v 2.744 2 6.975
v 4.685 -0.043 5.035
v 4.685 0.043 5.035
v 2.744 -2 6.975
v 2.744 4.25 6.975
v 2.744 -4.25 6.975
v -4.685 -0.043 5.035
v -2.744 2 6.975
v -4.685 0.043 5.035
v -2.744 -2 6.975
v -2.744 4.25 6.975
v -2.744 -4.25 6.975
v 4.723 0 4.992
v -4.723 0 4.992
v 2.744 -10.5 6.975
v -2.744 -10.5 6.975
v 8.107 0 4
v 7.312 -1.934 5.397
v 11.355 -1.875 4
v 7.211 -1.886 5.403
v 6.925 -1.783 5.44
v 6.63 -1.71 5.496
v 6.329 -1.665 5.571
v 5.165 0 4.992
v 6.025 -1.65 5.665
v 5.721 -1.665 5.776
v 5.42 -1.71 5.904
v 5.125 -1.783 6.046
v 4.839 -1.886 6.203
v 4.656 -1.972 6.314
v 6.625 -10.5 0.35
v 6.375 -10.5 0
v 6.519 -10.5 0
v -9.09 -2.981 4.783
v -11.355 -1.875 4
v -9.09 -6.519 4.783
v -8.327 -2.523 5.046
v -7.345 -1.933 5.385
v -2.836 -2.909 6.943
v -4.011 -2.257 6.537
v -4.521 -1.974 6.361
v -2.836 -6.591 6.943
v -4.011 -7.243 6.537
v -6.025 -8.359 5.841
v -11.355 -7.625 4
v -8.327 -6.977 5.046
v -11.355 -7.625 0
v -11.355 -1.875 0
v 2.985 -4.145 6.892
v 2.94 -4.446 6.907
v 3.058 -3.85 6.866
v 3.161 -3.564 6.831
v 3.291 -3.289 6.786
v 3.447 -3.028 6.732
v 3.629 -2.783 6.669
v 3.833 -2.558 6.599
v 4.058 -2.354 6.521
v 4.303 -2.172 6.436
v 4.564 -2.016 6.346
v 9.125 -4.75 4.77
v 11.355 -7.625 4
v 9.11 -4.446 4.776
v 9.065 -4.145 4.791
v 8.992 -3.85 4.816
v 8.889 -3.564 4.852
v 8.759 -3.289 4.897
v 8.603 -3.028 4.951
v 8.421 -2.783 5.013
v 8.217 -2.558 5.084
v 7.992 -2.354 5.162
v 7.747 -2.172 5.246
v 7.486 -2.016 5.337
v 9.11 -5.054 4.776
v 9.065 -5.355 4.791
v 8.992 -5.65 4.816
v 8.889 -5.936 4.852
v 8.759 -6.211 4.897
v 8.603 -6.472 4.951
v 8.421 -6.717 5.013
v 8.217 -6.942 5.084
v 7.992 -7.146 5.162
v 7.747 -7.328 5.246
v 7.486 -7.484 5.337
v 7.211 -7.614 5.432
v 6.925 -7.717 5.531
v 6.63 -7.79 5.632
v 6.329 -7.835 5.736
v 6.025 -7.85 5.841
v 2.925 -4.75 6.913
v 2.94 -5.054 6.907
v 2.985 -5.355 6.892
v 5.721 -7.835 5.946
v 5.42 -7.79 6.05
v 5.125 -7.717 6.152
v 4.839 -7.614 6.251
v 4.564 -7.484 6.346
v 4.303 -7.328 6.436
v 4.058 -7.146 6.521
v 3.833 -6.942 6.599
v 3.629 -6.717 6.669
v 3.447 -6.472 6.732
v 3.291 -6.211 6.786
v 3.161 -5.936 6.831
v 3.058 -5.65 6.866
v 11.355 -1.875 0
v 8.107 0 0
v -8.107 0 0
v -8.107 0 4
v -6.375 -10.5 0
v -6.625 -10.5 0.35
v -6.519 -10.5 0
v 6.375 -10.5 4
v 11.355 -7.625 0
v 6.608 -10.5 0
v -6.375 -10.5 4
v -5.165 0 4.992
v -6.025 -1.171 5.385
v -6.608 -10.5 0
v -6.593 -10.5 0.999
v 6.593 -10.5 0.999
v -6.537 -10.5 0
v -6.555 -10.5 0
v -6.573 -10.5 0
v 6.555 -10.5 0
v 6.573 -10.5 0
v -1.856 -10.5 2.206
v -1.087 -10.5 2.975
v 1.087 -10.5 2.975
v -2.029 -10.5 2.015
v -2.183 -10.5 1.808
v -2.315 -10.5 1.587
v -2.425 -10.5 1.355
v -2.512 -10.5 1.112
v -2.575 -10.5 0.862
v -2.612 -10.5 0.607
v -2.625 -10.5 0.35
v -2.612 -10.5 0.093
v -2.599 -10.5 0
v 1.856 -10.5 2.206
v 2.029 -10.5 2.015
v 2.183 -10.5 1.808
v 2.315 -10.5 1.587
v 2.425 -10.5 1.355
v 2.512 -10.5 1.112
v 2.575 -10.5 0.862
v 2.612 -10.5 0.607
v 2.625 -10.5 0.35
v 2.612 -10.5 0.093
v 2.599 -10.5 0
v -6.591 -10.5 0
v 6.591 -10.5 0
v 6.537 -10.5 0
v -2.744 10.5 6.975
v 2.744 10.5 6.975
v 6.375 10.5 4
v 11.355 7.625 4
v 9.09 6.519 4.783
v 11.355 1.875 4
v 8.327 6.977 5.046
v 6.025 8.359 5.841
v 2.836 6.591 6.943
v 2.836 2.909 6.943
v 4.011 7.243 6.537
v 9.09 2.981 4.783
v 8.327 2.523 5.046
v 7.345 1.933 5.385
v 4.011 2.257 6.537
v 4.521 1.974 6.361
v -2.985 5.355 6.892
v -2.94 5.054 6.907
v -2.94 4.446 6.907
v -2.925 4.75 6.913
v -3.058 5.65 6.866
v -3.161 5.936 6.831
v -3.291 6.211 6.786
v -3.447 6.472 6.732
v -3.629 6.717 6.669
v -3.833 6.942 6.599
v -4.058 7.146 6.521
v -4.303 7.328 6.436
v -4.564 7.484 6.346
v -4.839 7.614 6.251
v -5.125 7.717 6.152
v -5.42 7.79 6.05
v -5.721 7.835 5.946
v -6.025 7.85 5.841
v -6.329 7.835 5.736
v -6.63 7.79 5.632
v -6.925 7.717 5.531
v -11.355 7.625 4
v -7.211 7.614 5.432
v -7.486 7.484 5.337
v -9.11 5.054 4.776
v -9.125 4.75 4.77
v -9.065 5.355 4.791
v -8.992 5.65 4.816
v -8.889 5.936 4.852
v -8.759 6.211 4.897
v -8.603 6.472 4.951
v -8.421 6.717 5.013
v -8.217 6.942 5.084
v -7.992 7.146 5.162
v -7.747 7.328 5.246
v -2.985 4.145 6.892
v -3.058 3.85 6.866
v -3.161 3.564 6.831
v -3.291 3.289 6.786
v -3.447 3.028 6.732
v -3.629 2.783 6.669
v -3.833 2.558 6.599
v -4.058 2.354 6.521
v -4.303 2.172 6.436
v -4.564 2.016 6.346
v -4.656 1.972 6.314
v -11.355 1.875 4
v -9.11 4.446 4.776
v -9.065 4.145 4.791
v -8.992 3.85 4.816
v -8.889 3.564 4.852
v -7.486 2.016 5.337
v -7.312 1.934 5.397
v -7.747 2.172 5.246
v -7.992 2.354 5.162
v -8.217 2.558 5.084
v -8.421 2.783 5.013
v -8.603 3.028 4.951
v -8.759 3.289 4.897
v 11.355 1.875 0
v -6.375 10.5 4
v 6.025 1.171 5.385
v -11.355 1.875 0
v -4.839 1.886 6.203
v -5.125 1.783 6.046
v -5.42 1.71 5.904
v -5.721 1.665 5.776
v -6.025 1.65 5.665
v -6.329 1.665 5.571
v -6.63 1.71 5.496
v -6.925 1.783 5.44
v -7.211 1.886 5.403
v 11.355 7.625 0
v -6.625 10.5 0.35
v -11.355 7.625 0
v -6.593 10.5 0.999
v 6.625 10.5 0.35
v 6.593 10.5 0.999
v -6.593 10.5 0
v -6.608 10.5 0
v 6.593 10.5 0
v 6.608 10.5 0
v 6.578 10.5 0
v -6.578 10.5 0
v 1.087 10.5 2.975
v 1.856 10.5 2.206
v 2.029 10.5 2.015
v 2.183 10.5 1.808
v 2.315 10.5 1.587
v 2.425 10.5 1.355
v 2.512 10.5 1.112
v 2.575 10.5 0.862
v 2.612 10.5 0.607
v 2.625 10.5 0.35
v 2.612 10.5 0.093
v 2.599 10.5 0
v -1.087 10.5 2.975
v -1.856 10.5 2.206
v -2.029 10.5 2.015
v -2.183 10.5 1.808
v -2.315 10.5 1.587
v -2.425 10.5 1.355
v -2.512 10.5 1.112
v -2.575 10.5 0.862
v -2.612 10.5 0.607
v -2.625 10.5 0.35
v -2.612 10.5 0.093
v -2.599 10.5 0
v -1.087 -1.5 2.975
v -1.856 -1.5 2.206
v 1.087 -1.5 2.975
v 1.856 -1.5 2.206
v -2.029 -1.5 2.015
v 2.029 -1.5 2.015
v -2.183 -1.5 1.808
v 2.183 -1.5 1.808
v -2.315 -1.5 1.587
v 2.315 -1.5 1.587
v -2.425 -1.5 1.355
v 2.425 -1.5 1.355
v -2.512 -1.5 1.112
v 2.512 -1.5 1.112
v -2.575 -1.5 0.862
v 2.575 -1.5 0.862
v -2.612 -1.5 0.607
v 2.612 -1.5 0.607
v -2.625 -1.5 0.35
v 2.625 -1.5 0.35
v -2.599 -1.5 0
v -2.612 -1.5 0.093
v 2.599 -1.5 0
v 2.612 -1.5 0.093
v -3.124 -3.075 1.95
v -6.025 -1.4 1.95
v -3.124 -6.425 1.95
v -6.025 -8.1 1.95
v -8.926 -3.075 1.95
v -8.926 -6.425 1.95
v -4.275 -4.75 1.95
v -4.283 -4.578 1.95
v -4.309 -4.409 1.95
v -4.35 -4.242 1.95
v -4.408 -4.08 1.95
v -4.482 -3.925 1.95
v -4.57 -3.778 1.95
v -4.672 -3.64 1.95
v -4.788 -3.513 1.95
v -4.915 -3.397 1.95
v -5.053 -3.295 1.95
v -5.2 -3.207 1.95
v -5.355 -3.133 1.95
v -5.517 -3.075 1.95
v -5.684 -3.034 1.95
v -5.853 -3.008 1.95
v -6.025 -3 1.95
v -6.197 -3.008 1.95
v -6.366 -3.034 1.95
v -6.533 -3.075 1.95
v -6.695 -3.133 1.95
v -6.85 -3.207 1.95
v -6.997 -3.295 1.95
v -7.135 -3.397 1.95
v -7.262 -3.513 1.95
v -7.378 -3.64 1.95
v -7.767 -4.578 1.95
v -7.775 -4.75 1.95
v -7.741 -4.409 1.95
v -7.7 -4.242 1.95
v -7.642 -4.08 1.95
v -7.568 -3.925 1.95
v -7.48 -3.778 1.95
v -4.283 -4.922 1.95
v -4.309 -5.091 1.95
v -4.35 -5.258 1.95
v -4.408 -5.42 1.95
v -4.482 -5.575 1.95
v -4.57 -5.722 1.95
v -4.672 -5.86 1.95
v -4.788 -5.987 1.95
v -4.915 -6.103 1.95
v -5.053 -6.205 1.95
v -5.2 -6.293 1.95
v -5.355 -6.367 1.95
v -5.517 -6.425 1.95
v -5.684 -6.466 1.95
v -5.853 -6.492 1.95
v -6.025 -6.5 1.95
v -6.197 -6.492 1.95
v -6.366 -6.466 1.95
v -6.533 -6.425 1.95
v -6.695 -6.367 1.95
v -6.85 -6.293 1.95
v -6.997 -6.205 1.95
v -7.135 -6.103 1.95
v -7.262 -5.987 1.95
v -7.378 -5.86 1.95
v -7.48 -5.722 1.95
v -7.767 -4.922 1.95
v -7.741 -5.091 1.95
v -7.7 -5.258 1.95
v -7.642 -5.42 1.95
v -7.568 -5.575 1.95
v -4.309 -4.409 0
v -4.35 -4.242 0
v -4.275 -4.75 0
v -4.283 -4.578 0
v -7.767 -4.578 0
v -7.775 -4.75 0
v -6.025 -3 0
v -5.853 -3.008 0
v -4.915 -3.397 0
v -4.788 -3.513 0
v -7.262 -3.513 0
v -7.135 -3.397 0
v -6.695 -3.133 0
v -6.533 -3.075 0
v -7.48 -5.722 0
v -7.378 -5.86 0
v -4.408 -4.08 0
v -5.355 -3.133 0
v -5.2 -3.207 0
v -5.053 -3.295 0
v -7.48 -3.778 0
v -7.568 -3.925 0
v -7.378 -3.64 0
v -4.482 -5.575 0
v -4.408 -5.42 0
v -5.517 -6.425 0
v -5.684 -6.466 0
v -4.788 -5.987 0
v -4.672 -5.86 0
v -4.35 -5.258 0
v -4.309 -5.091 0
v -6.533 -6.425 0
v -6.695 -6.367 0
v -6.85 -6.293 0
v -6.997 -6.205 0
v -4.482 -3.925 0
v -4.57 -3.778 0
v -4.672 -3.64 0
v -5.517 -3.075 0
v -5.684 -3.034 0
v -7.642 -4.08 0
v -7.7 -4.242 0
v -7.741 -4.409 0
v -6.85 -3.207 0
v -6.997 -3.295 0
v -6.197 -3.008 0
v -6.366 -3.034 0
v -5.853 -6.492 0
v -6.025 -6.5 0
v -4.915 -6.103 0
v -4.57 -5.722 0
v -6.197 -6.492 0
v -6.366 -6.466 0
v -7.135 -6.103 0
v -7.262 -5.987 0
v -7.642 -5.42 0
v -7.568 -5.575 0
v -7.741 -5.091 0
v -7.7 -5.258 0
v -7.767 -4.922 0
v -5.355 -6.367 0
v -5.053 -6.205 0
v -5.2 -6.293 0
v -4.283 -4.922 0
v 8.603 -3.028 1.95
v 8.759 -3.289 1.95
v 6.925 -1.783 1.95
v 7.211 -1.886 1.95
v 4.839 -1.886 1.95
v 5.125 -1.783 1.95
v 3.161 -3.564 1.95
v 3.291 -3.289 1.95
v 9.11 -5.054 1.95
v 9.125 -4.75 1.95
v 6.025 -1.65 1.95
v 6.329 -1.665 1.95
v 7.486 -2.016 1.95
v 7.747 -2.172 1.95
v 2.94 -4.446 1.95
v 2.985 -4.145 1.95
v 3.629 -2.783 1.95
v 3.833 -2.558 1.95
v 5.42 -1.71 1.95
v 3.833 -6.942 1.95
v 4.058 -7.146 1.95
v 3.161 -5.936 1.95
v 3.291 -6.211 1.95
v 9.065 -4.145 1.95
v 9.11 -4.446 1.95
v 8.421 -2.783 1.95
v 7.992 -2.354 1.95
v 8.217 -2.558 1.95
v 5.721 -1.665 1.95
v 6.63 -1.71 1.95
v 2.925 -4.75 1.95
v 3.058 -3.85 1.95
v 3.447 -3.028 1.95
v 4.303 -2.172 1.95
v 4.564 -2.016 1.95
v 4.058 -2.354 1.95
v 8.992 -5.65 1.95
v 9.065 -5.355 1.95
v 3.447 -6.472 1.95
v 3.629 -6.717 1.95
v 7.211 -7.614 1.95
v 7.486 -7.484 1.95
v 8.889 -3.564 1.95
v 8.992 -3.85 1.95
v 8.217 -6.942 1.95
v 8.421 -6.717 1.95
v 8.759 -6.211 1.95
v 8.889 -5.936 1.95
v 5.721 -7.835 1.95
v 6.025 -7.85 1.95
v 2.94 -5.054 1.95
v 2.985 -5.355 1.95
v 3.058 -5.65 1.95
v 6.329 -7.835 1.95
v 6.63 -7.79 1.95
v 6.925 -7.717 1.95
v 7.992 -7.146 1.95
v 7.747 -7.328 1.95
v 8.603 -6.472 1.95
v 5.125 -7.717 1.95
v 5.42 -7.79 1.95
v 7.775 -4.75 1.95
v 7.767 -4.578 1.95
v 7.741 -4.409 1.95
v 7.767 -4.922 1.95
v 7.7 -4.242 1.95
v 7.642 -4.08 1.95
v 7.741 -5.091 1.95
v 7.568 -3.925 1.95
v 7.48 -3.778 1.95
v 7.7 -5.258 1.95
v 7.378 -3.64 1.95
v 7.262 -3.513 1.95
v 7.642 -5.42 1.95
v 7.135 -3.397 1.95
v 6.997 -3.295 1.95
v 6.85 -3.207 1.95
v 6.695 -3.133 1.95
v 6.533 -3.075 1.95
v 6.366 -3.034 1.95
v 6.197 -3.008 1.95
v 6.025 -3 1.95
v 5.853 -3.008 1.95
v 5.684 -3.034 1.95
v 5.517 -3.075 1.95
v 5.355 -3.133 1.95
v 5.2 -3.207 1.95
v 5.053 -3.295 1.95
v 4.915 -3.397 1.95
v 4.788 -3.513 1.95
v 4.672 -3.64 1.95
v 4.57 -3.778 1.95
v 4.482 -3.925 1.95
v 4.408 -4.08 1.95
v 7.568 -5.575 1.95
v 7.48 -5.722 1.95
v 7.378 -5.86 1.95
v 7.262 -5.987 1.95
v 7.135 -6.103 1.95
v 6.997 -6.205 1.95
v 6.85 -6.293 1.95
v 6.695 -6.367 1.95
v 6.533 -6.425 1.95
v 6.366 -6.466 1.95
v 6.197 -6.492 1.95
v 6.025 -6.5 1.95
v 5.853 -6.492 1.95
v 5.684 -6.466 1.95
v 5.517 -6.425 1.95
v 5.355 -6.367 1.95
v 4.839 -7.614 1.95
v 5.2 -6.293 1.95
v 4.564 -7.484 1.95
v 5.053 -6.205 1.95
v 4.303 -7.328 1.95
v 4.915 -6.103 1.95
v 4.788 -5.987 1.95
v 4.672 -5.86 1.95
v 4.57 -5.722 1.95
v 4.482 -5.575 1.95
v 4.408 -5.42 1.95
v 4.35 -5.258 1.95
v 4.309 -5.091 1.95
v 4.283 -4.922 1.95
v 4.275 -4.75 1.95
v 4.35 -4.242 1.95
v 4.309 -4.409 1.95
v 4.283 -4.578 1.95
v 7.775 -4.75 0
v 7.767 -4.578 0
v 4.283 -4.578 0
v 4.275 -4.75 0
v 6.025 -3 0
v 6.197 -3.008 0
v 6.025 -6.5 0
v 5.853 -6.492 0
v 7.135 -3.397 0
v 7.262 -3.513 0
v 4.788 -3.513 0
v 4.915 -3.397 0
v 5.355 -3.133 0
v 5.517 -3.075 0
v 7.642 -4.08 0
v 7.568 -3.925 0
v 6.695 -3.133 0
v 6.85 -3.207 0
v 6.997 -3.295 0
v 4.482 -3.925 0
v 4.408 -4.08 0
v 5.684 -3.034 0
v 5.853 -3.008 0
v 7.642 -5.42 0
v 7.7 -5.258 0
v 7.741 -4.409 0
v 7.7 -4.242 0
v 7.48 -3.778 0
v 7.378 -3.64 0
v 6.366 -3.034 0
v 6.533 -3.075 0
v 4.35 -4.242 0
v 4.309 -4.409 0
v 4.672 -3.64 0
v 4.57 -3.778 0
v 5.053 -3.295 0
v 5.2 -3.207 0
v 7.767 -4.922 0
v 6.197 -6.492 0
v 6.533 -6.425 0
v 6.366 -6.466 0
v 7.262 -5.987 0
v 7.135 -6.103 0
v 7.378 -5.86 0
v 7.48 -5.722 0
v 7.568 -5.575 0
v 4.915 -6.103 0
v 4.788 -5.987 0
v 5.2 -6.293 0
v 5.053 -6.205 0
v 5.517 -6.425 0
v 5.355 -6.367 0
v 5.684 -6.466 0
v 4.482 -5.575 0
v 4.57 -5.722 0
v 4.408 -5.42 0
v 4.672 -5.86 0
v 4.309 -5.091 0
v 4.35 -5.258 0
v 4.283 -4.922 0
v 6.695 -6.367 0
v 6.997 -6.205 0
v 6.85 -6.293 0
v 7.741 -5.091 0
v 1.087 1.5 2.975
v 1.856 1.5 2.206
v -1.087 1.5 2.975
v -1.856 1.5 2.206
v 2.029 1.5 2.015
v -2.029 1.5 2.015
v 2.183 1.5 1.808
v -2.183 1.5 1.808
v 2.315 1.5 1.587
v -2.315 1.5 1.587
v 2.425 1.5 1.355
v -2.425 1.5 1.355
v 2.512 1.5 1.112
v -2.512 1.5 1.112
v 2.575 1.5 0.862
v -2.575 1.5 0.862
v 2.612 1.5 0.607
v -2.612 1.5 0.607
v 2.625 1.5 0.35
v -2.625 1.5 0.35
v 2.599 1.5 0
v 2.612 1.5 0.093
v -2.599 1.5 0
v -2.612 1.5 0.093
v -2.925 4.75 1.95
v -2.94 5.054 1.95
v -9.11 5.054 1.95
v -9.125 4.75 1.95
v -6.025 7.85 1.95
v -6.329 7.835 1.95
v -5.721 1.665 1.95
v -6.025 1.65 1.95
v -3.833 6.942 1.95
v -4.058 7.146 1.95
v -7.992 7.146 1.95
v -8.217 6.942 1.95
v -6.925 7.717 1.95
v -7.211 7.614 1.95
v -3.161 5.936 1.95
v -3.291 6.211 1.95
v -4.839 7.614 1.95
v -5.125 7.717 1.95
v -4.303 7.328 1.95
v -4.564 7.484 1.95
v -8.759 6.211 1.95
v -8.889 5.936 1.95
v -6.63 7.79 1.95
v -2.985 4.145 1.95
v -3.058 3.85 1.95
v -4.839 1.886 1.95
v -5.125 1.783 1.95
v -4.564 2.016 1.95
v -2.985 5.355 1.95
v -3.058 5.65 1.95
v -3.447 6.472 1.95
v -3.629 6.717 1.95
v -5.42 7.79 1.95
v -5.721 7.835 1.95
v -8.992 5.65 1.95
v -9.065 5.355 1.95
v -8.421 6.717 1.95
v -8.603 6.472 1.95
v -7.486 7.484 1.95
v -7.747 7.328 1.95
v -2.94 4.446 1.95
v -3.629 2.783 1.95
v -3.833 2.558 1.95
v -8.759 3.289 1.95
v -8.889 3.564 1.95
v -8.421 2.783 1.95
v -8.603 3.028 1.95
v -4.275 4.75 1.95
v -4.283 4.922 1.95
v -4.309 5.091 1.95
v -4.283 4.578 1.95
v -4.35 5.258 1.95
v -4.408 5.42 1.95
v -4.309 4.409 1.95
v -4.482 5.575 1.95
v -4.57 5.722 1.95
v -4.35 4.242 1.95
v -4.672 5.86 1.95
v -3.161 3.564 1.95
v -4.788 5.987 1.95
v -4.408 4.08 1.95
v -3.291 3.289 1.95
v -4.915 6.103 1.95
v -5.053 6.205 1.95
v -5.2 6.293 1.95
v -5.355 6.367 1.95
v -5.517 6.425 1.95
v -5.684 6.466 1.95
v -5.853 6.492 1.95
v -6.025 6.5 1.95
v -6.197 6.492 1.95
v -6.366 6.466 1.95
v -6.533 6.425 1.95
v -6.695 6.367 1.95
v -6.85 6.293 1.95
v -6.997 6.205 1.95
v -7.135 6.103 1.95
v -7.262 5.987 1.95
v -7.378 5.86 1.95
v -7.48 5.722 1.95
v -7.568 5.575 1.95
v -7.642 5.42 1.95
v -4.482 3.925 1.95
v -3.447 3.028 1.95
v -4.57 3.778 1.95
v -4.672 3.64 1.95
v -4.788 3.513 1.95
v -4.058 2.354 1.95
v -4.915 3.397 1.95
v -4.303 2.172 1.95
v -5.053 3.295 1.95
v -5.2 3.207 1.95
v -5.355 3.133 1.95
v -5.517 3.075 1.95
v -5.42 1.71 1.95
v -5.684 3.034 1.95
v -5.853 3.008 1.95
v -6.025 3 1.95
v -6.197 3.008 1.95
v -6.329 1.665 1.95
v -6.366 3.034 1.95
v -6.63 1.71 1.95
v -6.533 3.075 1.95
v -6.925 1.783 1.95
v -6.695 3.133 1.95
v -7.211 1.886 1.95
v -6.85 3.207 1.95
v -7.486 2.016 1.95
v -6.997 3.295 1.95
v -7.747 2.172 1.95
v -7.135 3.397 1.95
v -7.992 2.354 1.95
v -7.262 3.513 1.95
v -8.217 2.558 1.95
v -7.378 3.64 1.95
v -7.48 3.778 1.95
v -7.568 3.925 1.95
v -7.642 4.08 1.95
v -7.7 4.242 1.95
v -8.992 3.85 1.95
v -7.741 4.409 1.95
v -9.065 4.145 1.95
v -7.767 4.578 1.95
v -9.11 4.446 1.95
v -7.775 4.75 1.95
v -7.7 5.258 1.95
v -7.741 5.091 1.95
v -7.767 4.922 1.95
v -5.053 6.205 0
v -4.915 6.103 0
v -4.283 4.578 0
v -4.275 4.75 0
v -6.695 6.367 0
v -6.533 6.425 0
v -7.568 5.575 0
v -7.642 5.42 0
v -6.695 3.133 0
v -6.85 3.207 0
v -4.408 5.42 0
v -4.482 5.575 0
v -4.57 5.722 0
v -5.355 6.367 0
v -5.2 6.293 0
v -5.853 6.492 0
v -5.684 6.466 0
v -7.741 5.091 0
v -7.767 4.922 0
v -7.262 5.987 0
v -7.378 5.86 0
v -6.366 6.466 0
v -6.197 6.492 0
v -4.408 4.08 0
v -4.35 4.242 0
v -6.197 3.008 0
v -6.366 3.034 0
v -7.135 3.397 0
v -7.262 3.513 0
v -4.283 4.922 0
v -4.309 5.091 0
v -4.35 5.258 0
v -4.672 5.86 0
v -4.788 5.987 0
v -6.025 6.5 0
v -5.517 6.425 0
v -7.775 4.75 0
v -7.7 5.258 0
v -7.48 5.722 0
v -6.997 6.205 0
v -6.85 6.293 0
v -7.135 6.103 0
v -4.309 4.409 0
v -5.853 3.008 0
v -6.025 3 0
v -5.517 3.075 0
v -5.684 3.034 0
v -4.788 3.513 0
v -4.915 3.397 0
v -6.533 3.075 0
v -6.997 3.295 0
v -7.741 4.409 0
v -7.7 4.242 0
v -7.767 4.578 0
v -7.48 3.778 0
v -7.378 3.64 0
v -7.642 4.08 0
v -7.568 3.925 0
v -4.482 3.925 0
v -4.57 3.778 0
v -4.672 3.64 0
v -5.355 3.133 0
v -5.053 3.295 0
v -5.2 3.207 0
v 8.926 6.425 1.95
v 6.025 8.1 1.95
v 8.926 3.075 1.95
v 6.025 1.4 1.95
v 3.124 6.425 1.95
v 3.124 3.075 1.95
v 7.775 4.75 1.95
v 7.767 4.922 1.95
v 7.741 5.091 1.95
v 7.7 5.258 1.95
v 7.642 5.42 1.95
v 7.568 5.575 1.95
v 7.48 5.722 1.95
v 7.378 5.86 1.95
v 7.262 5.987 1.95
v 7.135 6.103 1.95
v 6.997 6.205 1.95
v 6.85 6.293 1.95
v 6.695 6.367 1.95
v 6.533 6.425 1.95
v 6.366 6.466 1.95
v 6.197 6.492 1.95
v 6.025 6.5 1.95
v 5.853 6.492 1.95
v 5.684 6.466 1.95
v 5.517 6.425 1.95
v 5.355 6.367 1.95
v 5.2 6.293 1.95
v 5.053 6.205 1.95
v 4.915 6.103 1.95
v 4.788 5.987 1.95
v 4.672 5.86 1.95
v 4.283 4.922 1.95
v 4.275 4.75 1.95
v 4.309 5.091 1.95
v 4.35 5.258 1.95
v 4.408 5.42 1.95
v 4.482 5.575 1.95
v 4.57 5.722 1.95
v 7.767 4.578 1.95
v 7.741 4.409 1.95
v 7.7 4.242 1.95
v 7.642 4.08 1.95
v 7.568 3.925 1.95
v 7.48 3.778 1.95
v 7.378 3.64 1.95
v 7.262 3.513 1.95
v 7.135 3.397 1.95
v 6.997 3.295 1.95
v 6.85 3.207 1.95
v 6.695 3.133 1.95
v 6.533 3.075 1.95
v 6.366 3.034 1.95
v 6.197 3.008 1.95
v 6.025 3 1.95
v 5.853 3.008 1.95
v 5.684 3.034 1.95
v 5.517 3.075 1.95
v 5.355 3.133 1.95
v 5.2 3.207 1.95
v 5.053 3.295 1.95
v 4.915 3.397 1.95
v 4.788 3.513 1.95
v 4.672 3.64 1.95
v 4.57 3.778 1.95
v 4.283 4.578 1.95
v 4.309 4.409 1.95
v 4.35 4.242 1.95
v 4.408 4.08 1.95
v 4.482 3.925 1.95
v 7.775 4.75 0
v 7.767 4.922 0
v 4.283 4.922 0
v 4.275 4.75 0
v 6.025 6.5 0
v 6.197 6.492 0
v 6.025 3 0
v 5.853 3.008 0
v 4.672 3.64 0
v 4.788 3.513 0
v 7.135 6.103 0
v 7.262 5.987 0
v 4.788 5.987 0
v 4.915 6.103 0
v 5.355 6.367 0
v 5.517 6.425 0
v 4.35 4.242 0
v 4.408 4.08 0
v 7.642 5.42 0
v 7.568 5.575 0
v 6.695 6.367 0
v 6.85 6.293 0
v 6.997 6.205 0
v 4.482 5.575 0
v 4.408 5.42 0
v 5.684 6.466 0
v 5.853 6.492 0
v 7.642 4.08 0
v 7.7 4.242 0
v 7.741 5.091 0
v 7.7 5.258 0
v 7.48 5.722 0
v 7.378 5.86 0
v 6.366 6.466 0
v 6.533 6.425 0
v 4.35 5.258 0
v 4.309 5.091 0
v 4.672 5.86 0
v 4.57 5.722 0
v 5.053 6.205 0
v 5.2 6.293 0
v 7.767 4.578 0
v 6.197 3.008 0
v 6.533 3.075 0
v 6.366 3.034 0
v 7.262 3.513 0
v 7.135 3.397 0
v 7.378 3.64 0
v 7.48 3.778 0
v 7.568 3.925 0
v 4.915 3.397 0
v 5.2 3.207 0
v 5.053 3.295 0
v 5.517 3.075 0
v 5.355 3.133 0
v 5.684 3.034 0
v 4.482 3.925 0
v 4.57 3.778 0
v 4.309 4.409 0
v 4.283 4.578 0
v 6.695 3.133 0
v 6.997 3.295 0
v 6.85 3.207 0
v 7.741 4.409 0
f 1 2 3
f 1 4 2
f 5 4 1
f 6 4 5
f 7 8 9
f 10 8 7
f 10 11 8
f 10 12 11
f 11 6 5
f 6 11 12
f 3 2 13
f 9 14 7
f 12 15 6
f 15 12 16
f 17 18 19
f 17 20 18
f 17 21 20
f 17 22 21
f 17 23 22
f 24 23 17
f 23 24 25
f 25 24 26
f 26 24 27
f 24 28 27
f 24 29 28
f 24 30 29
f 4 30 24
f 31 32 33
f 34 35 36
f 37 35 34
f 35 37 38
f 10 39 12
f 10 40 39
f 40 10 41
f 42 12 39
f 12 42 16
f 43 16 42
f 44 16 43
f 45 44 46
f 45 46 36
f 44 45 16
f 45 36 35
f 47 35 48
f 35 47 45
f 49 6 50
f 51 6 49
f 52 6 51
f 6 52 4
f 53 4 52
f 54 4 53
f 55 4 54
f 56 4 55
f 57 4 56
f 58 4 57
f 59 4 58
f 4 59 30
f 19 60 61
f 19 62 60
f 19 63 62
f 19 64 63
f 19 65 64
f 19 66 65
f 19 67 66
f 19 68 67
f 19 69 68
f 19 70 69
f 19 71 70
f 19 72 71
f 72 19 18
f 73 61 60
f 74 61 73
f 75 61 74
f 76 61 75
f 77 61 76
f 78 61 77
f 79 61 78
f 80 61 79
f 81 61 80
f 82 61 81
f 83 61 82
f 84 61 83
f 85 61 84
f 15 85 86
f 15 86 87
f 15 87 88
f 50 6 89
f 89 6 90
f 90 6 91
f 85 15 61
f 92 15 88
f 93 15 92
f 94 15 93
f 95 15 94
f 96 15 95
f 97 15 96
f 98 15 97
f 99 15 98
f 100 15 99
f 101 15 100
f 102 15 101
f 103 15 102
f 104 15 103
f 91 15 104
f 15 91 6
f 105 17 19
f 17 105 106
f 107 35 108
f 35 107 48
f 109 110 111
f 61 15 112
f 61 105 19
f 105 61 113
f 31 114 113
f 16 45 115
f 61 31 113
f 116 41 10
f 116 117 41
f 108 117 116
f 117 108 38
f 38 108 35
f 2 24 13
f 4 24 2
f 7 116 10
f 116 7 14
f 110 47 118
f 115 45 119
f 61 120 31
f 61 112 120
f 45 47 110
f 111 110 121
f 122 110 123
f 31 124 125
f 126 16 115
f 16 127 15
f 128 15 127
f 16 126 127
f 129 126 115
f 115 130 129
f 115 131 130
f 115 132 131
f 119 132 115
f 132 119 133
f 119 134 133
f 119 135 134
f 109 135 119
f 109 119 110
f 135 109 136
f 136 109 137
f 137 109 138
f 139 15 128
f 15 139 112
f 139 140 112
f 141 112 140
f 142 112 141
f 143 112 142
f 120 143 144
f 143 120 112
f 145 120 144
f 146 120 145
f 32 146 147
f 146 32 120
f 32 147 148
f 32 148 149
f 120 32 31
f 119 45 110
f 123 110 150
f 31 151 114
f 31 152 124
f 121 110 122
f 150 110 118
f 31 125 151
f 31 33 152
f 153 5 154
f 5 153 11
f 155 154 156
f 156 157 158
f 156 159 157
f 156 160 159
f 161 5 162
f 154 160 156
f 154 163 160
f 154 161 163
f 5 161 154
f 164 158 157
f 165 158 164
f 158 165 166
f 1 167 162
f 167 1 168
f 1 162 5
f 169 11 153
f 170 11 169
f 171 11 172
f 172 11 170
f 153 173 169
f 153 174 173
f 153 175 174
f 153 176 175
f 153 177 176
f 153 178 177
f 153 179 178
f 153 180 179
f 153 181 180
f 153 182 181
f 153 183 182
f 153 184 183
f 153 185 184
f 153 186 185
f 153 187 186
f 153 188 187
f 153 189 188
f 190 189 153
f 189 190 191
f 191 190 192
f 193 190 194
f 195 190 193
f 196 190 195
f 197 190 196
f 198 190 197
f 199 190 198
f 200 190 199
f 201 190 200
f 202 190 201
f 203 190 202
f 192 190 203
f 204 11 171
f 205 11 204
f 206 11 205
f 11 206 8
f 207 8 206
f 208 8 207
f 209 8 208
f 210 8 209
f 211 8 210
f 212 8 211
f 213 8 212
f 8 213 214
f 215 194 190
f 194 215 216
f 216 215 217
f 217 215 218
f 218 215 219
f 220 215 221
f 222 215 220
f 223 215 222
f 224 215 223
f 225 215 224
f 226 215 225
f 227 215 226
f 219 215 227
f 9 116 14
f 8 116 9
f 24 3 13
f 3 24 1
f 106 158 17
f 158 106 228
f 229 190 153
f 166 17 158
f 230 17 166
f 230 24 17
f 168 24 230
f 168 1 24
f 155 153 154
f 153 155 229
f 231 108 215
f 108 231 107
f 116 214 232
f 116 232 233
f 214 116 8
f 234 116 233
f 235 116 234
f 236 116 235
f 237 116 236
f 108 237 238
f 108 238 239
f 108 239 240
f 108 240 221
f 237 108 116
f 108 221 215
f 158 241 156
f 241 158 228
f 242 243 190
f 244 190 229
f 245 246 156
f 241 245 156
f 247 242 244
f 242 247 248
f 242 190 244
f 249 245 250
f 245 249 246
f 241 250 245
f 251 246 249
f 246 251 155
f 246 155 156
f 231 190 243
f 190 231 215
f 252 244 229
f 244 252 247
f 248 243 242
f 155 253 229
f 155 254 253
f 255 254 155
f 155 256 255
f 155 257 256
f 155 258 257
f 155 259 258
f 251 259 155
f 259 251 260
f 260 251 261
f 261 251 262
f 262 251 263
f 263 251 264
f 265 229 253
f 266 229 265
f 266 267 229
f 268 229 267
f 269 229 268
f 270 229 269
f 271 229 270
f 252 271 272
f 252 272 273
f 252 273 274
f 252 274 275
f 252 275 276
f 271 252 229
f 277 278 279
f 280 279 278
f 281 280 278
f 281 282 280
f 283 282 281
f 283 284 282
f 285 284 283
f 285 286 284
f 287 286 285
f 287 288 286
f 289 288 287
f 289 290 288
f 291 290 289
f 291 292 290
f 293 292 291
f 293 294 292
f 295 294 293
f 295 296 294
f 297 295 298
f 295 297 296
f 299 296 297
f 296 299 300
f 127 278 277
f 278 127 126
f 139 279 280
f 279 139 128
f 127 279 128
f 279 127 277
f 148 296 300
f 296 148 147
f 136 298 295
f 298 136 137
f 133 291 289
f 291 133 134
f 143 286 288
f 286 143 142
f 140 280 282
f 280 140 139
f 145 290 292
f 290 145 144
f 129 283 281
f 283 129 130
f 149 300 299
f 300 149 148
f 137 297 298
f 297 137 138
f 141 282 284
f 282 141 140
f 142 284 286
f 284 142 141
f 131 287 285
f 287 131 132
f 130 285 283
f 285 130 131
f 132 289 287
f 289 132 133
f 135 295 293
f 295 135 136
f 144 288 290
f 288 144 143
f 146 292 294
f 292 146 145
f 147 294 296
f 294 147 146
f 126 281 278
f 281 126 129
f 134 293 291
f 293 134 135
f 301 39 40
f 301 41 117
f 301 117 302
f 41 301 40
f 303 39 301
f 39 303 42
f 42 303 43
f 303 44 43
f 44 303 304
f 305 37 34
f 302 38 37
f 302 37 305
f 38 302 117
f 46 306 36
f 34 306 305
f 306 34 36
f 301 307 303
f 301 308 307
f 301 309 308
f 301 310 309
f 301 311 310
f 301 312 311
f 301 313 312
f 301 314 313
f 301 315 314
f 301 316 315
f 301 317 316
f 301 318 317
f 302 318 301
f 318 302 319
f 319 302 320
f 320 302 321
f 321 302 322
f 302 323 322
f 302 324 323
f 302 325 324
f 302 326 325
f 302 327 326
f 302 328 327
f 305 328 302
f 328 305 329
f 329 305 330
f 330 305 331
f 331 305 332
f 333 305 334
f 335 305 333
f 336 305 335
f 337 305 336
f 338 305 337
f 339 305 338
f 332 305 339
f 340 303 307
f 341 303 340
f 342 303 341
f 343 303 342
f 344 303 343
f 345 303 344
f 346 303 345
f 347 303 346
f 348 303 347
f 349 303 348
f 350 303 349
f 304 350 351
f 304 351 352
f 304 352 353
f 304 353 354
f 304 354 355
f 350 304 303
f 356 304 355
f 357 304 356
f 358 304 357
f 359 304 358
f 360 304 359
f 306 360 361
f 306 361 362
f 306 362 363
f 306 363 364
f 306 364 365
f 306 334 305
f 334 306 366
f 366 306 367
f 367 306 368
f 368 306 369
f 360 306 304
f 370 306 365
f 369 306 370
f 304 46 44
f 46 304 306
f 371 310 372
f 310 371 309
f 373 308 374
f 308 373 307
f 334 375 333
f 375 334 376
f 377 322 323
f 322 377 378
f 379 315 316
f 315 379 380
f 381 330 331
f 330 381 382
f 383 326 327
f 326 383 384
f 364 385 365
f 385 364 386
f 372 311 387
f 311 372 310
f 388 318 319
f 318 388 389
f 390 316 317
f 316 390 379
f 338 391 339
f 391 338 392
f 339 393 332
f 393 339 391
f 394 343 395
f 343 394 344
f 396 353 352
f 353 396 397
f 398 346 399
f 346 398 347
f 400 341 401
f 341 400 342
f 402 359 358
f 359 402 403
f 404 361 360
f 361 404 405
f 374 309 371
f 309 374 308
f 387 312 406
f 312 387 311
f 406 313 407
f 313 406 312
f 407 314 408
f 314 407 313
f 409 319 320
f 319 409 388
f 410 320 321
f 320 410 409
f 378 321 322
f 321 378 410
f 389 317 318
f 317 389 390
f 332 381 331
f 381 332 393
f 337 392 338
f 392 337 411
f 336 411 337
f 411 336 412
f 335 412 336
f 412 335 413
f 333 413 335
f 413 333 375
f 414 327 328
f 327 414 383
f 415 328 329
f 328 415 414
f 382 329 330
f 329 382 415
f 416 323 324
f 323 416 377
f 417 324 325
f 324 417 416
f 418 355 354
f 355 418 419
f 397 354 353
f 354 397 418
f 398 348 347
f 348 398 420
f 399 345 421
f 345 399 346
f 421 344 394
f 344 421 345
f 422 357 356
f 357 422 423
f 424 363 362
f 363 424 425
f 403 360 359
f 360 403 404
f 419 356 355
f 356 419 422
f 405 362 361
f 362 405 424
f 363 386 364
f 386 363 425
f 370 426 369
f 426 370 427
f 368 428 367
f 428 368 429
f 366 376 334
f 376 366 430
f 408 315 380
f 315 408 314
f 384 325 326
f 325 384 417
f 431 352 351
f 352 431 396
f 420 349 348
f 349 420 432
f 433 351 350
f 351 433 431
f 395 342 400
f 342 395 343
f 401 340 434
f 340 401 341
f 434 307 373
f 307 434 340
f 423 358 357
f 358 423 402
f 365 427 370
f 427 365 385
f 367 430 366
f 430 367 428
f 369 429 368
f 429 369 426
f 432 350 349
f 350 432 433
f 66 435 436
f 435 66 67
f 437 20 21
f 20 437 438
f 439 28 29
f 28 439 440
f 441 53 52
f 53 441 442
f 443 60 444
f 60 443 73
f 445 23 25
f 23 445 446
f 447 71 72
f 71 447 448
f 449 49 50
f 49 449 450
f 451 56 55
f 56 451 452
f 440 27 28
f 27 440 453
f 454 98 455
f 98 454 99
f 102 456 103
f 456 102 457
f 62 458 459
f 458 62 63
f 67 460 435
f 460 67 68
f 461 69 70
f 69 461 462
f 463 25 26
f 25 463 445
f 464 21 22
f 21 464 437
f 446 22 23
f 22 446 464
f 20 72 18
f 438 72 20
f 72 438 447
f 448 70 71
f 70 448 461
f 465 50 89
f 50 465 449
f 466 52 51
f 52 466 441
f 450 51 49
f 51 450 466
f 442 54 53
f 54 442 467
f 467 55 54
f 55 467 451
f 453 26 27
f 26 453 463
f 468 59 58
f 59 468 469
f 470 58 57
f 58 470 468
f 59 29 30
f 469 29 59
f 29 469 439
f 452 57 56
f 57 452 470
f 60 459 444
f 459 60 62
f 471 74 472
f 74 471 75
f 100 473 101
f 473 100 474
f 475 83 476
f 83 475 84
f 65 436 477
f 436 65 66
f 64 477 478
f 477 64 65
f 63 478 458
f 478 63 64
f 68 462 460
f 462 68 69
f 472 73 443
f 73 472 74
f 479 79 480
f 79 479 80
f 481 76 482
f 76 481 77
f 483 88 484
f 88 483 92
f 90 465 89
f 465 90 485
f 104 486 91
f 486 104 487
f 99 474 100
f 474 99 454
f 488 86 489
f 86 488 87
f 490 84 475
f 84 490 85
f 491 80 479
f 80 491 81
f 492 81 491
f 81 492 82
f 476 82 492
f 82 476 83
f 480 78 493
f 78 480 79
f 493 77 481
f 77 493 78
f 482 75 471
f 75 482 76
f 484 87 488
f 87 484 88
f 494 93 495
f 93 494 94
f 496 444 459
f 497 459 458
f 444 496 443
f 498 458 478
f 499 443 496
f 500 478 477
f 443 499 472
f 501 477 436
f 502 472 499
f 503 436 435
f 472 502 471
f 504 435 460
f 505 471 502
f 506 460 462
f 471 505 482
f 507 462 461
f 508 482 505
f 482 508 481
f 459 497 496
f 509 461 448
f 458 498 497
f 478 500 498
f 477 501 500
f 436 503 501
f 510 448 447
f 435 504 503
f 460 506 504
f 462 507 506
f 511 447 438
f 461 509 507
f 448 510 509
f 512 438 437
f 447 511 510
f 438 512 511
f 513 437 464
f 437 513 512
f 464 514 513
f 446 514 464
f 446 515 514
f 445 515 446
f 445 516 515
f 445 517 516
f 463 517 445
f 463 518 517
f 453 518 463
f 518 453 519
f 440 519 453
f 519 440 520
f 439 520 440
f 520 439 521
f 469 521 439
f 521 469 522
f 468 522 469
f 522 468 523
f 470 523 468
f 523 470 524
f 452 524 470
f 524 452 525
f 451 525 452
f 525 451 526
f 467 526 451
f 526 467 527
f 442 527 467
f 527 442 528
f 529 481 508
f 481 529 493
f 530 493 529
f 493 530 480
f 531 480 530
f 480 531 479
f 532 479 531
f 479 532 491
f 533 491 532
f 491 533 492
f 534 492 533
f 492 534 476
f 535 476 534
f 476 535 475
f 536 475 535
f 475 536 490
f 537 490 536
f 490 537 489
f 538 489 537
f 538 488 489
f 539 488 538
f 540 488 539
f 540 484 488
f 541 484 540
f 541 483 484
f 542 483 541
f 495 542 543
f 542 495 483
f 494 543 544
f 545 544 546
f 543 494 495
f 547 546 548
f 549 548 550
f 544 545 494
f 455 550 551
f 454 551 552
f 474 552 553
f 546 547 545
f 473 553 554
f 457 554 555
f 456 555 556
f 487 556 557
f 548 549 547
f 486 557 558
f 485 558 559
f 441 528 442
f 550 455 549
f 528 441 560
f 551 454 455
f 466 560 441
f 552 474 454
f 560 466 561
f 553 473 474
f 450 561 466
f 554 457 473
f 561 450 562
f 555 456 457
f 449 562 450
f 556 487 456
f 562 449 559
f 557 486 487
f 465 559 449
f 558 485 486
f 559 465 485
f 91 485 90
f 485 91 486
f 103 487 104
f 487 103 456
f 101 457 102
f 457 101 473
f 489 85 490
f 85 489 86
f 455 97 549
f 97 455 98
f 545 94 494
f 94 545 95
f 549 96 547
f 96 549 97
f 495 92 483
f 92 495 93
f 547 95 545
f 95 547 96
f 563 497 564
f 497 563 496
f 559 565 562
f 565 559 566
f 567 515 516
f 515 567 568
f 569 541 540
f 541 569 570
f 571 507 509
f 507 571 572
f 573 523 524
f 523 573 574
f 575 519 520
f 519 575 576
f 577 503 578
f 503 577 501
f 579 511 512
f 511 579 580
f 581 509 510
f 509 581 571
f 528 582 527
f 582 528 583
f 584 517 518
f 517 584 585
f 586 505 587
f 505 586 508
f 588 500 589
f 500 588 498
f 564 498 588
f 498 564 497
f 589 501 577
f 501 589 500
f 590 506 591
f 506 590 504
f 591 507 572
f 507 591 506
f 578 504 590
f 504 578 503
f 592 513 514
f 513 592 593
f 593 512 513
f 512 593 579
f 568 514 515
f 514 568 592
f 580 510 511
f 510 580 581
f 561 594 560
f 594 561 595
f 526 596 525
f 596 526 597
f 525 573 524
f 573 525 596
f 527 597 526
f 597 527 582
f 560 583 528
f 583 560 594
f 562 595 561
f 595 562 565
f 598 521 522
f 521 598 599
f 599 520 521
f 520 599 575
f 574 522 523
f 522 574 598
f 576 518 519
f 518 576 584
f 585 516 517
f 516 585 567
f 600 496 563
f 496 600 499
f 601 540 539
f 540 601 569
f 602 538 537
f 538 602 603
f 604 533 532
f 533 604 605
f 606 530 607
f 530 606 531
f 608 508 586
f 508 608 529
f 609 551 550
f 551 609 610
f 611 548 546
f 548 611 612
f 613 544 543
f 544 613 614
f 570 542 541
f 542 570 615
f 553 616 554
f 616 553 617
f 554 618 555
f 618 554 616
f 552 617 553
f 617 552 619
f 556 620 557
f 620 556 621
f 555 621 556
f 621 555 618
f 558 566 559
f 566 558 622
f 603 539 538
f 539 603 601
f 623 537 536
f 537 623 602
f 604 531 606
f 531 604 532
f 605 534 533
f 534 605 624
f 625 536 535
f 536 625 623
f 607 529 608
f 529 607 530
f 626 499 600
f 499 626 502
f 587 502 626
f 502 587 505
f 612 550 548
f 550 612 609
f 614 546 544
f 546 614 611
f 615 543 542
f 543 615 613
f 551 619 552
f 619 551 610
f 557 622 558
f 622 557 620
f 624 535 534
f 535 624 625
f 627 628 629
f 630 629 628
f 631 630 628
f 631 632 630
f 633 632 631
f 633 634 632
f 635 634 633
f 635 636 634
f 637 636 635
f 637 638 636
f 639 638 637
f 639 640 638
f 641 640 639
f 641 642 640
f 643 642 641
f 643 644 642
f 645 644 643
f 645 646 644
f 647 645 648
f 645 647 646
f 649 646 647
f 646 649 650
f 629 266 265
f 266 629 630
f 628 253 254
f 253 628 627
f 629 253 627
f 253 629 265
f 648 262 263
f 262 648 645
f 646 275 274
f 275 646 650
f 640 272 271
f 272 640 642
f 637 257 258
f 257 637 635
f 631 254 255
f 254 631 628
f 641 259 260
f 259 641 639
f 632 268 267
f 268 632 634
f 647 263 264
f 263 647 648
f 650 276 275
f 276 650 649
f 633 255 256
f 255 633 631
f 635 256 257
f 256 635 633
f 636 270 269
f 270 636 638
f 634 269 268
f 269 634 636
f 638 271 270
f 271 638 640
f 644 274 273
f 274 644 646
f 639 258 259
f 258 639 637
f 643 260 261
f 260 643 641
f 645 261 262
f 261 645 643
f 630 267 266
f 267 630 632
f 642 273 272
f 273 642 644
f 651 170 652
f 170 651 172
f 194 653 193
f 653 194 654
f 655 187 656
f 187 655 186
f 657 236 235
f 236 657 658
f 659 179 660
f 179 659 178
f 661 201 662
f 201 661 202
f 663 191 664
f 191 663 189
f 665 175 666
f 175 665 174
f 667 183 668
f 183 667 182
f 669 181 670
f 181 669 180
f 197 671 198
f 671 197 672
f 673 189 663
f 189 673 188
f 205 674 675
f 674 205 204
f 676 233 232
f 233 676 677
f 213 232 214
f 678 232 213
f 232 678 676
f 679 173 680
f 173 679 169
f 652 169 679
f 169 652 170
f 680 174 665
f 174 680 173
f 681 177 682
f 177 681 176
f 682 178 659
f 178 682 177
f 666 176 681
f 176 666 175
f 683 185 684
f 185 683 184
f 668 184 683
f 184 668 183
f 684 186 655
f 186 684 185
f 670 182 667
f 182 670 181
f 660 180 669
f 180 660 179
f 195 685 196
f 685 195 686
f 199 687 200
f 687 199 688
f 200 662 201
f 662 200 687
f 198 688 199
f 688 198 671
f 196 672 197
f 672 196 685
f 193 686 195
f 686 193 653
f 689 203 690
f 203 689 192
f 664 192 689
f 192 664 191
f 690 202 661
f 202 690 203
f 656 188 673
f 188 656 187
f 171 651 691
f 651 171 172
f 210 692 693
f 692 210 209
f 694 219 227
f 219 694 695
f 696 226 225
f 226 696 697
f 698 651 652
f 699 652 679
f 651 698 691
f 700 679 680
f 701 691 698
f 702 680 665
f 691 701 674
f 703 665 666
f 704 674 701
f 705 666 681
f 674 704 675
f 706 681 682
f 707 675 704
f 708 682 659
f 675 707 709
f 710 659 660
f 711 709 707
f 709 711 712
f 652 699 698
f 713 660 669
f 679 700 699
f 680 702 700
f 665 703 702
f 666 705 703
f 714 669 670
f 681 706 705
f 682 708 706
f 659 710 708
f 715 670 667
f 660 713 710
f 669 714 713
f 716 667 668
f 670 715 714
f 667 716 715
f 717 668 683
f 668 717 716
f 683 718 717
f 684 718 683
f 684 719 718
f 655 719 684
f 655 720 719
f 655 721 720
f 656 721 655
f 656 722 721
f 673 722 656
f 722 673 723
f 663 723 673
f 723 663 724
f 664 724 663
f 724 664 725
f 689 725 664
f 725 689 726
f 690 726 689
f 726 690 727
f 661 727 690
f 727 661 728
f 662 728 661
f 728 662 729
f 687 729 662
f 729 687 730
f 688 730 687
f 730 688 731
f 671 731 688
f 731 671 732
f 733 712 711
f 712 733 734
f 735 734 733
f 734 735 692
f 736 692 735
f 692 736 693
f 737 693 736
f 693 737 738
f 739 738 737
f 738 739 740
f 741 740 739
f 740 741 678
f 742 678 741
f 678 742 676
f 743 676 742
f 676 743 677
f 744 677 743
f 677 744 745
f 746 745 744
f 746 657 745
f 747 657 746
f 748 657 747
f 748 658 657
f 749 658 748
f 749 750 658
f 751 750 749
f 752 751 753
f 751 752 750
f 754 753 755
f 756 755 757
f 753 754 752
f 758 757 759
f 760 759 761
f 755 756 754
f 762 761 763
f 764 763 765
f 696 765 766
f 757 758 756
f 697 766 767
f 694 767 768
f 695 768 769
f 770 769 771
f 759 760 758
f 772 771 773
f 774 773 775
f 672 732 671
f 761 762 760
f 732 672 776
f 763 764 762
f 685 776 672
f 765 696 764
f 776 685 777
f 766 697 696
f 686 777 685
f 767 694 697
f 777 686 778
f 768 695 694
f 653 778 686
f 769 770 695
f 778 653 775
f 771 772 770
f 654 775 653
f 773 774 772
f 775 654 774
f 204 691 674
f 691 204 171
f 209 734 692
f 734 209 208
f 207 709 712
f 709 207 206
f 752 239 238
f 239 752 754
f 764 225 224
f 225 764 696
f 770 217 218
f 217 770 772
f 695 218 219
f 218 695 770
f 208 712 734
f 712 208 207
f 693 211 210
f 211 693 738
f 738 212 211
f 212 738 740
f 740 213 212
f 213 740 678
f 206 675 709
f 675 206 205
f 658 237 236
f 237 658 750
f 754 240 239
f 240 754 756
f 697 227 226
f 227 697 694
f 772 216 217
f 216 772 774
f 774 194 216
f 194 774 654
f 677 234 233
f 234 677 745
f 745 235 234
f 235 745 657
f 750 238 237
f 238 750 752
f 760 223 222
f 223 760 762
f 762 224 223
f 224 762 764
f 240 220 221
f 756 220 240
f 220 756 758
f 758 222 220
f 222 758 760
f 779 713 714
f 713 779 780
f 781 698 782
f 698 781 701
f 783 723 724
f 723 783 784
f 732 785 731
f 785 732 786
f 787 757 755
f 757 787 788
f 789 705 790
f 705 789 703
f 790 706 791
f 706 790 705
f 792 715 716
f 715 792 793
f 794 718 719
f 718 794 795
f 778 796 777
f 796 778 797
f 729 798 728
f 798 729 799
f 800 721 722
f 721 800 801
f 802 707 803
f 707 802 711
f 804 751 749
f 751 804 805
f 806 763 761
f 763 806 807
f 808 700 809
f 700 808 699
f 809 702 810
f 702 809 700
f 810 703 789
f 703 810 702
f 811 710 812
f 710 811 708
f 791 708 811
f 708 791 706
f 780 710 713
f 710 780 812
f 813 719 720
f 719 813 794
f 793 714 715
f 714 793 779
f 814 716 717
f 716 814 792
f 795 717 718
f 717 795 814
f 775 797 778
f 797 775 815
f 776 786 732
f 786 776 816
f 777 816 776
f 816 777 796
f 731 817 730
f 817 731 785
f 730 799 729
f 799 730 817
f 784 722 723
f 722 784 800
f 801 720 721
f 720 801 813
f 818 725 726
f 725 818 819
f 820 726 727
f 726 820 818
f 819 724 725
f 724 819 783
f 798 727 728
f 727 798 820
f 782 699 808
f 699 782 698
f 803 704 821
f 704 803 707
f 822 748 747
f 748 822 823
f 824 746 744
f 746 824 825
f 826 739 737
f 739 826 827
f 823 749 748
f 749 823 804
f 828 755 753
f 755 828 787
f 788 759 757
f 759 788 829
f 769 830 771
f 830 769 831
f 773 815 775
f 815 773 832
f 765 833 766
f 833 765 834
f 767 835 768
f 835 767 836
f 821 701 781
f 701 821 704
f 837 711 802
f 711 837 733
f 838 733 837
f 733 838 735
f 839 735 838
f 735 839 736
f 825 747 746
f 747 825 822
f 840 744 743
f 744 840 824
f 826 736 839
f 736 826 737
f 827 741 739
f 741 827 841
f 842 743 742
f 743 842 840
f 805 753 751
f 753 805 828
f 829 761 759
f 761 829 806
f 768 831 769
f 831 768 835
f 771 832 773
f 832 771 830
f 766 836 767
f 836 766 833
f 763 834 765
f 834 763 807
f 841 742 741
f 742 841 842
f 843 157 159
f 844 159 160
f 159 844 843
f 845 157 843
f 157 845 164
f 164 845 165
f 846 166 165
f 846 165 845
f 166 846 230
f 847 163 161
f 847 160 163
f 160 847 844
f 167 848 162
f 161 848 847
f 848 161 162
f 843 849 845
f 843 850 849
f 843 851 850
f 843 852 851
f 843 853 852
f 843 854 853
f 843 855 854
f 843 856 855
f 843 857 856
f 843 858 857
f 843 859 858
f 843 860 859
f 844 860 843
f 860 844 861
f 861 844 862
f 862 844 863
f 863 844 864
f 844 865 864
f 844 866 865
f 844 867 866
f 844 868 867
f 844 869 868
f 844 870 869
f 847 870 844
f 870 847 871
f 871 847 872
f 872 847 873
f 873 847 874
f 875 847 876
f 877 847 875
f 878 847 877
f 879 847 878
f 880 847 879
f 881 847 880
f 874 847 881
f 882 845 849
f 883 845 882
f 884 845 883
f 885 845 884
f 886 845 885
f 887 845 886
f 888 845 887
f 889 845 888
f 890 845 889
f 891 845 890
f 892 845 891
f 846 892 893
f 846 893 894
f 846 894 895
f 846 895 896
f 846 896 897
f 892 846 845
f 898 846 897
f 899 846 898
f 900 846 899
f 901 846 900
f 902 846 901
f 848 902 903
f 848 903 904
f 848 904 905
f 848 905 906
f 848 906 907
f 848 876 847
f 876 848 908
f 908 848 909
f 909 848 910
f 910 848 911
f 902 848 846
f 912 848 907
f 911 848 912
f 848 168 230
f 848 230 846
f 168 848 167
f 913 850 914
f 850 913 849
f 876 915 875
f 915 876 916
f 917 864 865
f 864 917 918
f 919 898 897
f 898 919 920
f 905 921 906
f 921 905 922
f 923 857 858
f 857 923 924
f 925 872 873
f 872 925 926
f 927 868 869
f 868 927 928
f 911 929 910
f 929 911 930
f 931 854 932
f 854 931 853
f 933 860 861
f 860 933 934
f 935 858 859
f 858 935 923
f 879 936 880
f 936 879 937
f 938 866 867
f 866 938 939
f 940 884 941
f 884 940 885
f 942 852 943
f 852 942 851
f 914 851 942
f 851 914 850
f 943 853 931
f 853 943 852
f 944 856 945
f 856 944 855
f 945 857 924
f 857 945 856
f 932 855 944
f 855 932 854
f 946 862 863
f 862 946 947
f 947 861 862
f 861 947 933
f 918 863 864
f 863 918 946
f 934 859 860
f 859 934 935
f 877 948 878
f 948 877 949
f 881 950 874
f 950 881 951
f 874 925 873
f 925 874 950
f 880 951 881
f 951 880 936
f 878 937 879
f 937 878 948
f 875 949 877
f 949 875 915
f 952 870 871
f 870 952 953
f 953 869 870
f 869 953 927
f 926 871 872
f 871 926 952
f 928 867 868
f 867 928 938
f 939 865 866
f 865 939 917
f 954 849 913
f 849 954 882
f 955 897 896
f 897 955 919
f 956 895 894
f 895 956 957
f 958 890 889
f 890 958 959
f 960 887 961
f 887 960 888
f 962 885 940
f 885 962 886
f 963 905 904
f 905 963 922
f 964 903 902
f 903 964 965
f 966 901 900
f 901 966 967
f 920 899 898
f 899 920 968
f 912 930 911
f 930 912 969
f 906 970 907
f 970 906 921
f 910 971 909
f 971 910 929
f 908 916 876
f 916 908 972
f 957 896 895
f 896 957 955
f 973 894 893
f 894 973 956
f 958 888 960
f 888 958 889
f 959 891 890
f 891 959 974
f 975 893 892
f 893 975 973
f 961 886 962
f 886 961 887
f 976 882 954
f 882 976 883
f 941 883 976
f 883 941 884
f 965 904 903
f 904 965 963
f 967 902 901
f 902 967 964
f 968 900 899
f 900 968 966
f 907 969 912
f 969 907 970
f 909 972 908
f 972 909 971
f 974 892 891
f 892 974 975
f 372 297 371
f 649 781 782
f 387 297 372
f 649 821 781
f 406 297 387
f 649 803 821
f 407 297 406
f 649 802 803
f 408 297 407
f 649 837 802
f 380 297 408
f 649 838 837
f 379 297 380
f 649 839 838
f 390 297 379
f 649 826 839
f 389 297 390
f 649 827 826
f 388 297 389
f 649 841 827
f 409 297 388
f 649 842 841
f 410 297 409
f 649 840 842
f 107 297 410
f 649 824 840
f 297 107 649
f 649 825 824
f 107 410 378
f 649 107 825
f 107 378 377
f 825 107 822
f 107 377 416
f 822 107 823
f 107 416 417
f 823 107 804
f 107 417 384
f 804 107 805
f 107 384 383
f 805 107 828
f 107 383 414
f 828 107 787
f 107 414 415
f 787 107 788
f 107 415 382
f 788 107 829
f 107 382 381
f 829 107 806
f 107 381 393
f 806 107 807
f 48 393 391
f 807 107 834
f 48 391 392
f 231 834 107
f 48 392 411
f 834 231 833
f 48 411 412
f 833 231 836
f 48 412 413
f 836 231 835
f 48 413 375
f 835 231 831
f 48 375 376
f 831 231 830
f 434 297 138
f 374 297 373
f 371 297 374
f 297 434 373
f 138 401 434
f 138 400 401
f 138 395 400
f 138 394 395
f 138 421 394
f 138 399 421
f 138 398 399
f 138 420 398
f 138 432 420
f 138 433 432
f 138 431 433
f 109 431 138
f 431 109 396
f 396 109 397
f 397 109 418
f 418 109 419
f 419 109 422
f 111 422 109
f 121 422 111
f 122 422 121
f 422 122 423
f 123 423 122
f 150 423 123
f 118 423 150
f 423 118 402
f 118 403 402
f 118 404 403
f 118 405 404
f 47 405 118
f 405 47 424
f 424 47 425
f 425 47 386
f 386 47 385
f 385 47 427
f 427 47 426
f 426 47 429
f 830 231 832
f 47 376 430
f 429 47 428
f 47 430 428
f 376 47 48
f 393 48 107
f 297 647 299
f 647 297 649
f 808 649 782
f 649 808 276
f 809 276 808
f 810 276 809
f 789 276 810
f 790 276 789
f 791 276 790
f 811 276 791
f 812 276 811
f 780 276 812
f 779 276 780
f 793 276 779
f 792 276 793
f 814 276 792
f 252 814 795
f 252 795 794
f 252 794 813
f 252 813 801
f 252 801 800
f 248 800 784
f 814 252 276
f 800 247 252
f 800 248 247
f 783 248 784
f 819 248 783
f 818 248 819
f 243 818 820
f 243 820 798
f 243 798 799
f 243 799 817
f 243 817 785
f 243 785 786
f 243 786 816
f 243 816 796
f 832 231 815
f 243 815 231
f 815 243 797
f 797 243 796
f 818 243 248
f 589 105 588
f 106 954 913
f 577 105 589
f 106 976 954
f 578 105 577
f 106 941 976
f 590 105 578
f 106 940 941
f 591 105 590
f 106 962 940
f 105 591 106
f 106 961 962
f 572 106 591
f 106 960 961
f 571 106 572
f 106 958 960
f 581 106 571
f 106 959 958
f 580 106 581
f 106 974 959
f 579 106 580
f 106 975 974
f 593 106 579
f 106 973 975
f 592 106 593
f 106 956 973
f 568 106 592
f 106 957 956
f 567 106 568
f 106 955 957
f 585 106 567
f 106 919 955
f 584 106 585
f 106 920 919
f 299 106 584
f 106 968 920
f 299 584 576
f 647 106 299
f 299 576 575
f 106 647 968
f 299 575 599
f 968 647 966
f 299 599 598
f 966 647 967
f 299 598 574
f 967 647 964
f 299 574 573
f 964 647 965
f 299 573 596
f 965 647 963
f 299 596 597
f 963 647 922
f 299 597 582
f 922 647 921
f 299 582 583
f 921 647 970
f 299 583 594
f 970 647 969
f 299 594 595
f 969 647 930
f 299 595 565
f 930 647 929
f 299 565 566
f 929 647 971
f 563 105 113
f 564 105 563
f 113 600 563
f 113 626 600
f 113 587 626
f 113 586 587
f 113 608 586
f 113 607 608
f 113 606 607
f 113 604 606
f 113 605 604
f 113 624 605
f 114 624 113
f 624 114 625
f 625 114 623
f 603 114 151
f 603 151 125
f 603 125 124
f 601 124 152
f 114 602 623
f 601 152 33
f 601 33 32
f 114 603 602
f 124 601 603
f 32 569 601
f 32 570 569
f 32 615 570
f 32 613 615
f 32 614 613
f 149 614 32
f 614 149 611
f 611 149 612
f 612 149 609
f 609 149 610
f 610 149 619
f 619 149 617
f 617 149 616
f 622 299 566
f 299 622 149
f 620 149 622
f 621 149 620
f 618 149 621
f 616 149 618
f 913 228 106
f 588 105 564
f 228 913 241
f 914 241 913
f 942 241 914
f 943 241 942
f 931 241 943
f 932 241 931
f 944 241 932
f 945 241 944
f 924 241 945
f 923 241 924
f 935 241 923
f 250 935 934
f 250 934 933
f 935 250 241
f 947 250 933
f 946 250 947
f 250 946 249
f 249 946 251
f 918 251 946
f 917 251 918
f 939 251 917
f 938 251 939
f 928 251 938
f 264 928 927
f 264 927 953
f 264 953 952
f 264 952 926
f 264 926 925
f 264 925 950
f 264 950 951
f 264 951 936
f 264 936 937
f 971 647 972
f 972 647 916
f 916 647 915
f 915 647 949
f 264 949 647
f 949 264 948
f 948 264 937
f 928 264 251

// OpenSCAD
slop = .25;

m3_dia = 3;
m3_rad = m3_dia/2+slop;

m3_cap_dia = 5.7;
m3_cap_rad = m3_cap_dia/2+slop;
m3_cap_thick = 1.65+slop/2;
m3_cap_hex_rad = (2/cos(30))/2;

m3_nut_dia = 6.45;
m3_nut_rad = m3_nut_dia/2+slop/2;
m3_nut_thick = 2.4;

m5_dia = 5;
m5_rad = 5/2+slop/2;

lm8uu_dia = 15;
lm8uu_rad = lm8uu_dia/2+slop;
lm8uu_len = 24+slop;

wall = 4;
hole_sep = m5_rad+m3_rad+wall/2;
len = 8.5;

$fn=64;
bearing_clamp();
//coupler();

module coupler(height=25){
    rad = m5_rad+wall;
    gap = wall/2;
    hinge_rad = gap+wall/2;
    width = rad+5;
    echo(width+hinge_rad*2);
    difference(){
        union(){
            cylinder(r=rad, h=height);
            hull(){
                for(i=[-width/2, width/2]) translate([i,0,0]) cylinder(r=hinge_rad, h=height);
            }
        }
        
        //hinge cutout
        hull(){
            for(i=[-width/2, width]) translate([i,0,-.1]) cylinder(r=gap/2, h=height+1);
        }
        
        //rod hole
        translate([0,0,-.01]) difference(){
            cylinder(r=m5_rad, h=height+1);
            translate([0,0,height/2]) difference(){
                cylinder(r=m5_rad+1, h=gap, center=true);
                cube([30,gap*2,gap+1], center=true);
            }
        }
        
        //clamp screws
        for(i=[m3_nut_rad+1, height-(m3_nut_rad+1)]) translate([m5_rad+m3_rad+1,0,i]) rotate([90,0,0]) {
            cylinder(r=m3_rad, h=10, center=true);
            translate([0,0,gap/2+wall/2]) rotate([0,0,30]) cylinder(r1=m3_nut_rad, r2=m3_nut_rad+.5, h=m3_nut_thick*2, $fn=6);
            mirror([0,0,1]) translate([0,0,gap/2+wall/2]) rotate([0,0,30]) cylinder(r1=m3_cap_rad, r2=m3_cap_rad+.5, h=m3_nut_thick*2);
        }
        
        //cutout to make top/bottom more independent
        scale([1,1,1]) translate([rad+wall,0,height/2])  rotate([90,0,0]) cylinder(r=rad+1, h=30, center=true, $fn=4);
    }
}


module bearing_clamp(){
    m5_inset = .35;
	difference(){
		union(){
			rotate([-90,0,0]) translate([0,-m5_inset,0]) cap_cylinder(r=m5_rad+wall, h=len, center=true);
			for(i=[-1,1])
				hull(){
					rotate([-90,0,0]) translate([0,-m5_inset,i*(wall/2+len/2)]) cap_cylinder(r=m5_rad+wall, h=len, center=true);

					for(j=[-1,1]) translate([j*hole_sep,i*(len-m3_rad-wall/2),0]) rotate([0,0,30]) cylinder(r=m3_rad+wall, h=wall, $fn=6);
			}
		}

		for(i=[-1,1]){
				rotate([-90,0,0]) translate([0,-m5_inset,i*(wall/2+len/2)]) cap_cylinder(r=m5_rad, h=len+1, center=true);

				for(j=[-1,1]) translate([j*hole_sep,i*(len-m3_rad-wall/2),-.05]) {	
					if((i+j)==0){
						translate([m5_inset*i,0,wall/2]) {
                                                    cylinder(r=m3_cap_rad, h=lm8uu_dia);
                                                    cylinder(r=m3_rad, h=wall*3, center=true);
                                            }
					}else{
						translate([-m5_inset*i,0,wall/2]) {
                                                    rotate([0,0,30]) cylinder(r1=m3_nut_rad, r2=m3_nut_rad+1, h=lm8uu_dia, $fn=6);
                                                    cylinder(r=m3_rad, h=wall*3, center=true);
                                                }
					}
				}
		}

		translate([0,0,-50]) cube([100,100,100], center=true); 
	}
}

module nut_trap(){
	difference(){
		hull(){
			for(i=[0,1]) mirror([i,0,0]) translate([hole_sep/2,0,0]) cylinder(r=m3_rad+wall, h=1+m3_nut_thick);
		}

		//screwholes
		for(i=[0,1]) mirror([i,0,0]) translate([hole_sep/2,0,-.1]) {
			cylinder(r=m3_rad, h=wall+.1);
			translate([0,0,1]) cylinder(r=m3_nut_rad, h=lm8uu_dia, $fn=6);
		}

		translate([0,0,-50]) cube([100,100,100], center=true); 
	}
}

module cap_screw(len = 10){
	color([.25,.25,.25])
	difference(){
		union(){
			translate([0,0,-len/2]) rotate([0,0,-90]) cap_cylinder(r=screw_rad, h=len, center=true);
			translate([0,0,len/2-.1]) difference(){
				scale([1,1,.75]) sphere(r=cap_rad);
				translate([0,0,-cap_dia/2]) cube([cap_dia+1, cap_dia+1, cap_dia],center=true);
				translate([0,0,cap_dia/2+.1+cap_thick]) cube([cap_dia+1, cap_dia+1, cap_dia],center=true);
			}
		}
		
		translate([0,0,len/2+slop]) cylinder(r=cap_hex_rad, h=cap_thick, $fn=6);
	}
}

module cap_cylinder(r=1, h=1, center=false){
	cylinder(r=r, h=h, center=center);
	intersection(){
		rotate([0,0,22.5]) cylinder(r=r/cos(180/8), h=h, $fn=8, center=center);
		translate([0,-r/cos(180/4),0]) rotate([0,0,0]) cylinder(r=r/cos(180/4), h=h, $fn=4, center=center);
	}
}
